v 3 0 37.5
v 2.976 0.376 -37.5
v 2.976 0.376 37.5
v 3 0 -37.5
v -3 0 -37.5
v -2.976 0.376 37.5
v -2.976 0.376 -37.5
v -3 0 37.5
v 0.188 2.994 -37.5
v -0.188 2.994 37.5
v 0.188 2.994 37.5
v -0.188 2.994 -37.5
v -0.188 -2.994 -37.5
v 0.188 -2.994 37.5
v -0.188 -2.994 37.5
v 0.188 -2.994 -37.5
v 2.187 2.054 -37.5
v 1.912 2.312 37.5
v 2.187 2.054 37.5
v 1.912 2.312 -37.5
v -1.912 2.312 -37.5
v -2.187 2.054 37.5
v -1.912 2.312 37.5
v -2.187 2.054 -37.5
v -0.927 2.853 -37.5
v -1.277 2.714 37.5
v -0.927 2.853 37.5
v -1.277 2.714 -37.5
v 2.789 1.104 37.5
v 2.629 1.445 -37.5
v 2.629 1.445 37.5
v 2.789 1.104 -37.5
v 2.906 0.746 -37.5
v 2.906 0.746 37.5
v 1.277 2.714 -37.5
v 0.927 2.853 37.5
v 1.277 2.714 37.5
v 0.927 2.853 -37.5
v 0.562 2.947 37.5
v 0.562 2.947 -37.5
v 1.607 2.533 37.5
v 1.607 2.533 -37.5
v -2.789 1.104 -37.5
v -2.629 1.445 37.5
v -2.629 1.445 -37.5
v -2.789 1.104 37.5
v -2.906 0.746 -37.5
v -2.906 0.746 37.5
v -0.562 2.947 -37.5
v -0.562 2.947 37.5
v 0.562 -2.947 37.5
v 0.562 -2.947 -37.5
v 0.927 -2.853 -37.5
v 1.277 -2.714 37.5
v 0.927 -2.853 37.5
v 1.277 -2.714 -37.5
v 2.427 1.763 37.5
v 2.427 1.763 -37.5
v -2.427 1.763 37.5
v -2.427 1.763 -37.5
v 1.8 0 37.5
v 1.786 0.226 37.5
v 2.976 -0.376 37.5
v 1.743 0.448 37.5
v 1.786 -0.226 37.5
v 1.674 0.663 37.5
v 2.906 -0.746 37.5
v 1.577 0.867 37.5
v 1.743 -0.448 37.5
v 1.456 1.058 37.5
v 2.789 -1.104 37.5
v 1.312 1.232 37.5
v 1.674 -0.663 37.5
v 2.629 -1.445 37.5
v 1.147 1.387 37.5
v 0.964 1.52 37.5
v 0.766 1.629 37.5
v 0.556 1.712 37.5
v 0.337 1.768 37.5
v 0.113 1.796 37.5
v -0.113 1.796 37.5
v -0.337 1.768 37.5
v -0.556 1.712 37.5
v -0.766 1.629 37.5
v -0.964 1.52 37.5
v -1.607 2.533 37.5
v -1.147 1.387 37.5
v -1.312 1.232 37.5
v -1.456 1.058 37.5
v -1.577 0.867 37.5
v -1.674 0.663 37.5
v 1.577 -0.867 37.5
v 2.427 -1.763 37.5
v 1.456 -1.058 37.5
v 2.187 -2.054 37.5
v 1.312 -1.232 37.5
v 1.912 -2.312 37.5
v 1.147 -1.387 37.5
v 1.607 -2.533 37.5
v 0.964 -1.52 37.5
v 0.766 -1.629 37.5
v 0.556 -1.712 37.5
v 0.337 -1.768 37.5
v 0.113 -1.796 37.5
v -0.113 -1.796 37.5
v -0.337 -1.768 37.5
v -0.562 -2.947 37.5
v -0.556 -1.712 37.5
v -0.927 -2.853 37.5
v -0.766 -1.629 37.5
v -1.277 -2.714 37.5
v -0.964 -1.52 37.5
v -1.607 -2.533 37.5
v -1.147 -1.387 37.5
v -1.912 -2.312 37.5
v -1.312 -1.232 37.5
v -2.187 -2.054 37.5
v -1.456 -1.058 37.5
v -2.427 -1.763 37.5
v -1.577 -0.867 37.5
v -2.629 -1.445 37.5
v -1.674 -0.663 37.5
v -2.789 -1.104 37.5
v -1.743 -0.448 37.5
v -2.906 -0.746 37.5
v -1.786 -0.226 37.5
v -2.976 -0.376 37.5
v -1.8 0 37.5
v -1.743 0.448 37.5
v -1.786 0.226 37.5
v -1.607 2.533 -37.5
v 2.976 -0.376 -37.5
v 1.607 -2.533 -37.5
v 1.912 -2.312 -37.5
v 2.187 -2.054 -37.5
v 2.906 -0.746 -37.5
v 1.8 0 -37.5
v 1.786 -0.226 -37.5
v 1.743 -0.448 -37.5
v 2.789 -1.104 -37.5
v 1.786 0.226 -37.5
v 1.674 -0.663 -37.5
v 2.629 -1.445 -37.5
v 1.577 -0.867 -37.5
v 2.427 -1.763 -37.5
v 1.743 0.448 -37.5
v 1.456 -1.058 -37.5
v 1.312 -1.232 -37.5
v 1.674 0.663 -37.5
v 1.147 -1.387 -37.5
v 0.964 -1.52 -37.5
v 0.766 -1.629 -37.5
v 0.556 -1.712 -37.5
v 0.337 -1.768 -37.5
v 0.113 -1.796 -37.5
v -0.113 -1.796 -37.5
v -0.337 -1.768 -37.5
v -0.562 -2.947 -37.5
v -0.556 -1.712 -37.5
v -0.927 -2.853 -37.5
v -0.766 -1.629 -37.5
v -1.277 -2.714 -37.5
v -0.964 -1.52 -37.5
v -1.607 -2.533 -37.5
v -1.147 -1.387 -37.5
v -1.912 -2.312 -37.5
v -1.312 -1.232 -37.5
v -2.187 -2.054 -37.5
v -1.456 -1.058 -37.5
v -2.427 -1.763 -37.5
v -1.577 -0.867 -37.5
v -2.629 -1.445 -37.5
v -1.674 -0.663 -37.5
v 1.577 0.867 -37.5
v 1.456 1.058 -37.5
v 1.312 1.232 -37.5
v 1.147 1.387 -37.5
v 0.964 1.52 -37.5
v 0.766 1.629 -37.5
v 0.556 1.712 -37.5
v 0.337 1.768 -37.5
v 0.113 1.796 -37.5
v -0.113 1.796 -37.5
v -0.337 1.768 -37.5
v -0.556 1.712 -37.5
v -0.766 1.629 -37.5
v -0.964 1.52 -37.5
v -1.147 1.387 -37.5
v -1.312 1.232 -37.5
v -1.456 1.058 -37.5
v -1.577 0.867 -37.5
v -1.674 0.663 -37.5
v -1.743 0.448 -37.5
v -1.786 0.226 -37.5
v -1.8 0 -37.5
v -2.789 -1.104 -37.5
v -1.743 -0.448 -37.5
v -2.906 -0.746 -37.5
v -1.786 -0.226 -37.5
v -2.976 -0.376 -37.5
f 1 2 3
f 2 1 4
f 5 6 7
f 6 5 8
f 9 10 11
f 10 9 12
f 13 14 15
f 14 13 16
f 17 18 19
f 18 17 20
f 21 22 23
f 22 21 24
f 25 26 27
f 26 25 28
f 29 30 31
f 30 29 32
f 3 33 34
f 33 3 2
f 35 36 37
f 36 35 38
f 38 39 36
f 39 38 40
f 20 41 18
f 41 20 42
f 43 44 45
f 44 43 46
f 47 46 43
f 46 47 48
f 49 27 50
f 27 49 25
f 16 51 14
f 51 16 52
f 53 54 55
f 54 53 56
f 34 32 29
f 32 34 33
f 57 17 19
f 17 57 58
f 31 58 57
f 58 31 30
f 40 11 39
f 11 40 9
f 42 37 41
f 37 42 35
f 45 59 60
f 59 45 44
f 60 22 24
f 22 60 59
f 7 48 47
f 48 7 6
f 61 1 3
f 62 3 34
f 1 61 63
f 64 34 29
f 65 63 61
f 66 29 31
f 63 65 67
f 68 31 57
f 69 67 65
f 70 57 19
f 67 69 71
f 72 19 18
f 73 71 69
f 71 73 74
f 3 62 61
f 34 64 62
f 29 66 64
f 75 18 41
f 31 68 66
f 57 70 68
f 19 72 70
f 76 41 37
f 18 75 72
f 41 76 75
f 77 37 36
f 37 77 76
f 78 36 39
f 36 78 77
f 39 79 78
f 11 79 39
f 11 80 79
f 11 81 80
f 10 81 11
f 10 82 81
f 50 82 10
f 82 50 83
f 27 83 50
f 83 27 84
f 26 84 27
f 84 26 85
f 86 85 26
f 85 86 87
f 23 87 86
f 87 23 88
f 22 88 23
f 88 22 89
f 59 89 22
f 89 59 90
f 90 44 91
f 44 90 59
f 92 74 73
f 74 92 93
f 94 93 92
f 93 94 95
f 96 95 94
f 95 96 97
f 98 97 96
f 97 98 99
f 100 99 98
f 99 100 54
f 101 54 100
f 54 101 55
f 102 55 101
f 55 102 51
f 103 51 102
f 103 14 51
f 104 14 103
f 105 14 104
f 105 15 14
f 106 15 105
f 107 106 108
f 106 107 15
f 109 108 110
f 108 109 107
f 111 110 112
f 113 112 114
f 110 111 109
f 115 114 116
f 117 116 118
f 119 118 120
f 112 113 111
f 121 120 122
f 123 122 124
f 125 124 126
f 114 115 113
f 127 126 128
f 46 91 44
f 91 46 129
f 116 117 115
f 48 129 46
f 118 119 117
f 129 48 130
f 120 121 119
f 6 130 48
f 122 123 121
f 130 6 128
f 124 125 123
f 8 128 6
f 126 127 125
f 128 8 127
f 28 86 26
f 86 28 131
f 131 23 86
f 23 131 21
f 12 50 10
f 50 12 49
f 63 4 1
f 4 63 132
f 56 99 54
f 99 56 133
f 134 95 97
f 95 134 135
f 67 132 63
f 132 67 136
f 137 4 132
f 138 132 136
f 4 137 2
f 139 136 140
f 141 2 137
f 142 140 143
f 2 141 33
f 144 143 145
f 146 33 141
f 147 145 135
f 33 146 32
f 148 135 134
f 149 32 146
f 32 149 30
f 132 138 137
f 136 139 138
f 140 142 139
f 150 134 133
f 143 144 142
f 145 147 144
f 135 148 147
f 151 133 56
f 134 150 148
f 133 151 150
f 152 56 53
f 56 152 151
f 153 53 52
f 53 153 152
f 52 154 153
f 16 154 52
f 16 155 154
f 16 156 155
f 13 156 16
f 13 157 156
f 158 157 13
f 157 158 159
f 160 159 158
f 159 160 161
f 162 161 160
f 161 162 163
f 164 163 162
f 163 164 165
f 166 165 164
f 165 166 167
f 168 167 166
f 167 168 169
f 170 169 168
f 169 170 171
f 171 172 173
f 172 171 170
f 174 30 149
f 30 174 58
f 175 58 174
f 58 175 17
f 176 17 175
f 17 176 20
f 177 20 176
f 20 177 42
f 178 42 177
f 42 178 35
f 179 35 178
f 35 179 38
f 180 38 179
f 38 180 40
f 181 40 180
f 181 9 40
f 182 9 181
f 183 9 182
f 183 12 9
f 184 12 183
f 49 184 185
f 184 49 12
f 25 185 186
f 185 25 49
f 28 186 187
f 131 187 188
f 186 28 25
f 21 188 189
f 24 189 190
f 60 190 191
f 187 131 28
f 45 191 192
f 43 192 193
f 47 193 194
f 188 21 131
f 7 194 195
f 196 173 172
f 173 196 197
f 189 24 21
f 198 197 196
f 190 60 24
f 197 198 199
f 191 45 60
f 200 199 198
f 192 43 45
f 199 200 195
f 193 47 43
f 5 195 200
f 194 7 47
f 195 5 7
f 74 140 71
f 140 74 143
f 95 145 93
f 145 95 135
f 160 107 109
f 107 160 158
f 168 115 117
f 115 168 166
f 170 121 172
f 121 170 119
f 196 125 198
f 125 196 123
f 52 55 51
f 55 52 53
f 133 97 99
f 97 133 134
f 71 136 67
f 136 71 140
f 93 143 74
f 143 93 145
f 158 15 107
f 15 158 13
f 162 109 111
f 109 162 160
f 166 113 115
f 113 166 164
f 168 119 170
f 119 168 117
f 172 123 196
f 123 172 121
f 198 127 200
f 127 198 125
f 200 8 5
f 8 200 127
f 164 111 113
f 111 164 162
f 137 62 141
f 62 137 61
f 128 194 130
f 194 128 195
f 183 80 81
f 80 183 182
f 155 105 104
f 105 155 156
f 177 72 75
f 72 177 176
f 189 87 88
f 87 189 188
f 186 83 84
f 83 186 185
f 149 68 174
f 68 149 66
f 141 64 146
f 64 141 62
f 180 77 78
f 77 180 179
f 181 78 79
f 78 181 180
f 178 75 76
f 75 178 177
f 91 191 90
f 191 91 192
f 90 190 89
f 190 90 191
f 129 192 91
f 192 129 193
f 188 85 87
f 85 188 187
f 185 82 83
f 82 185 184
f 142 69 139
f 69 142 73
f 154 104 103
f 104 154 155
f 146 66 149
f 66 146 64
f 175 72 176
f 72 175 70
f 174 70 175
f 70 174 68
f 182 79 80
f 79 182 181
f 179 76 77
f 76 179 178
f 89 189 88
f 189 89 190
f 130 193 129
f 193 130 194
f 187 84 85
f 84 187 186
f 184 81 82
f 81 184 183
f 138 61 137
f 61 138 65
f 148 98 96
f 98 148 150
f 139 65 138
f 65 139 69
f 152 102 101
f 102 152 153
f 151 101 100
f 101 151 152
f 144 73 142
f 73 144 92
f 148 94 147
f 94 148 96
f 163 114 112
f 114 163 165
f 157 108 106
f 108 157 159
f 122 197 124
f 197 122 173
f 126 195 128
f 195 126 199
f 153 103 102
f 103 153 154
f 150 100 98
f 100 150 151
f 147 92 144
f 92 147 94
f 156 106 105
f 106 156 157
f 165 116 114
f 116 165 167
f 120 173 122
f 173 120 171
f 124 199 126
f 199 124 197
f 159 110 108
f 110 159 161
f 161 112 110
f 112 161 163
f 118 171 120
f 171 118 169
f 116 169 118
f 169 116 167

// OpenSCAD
$fn = 50;


difference() {
	union() {
		translate(v = [0, 0, -37.5000000000]) {
			cylinder(h = 75, r = 3.0000000000);
		}
	}
	union() {
		translate(v = [0, 0, -100.0000000000]) {
			cylinder(h = 200, r = 1.8000000000);
		}
	}
}
